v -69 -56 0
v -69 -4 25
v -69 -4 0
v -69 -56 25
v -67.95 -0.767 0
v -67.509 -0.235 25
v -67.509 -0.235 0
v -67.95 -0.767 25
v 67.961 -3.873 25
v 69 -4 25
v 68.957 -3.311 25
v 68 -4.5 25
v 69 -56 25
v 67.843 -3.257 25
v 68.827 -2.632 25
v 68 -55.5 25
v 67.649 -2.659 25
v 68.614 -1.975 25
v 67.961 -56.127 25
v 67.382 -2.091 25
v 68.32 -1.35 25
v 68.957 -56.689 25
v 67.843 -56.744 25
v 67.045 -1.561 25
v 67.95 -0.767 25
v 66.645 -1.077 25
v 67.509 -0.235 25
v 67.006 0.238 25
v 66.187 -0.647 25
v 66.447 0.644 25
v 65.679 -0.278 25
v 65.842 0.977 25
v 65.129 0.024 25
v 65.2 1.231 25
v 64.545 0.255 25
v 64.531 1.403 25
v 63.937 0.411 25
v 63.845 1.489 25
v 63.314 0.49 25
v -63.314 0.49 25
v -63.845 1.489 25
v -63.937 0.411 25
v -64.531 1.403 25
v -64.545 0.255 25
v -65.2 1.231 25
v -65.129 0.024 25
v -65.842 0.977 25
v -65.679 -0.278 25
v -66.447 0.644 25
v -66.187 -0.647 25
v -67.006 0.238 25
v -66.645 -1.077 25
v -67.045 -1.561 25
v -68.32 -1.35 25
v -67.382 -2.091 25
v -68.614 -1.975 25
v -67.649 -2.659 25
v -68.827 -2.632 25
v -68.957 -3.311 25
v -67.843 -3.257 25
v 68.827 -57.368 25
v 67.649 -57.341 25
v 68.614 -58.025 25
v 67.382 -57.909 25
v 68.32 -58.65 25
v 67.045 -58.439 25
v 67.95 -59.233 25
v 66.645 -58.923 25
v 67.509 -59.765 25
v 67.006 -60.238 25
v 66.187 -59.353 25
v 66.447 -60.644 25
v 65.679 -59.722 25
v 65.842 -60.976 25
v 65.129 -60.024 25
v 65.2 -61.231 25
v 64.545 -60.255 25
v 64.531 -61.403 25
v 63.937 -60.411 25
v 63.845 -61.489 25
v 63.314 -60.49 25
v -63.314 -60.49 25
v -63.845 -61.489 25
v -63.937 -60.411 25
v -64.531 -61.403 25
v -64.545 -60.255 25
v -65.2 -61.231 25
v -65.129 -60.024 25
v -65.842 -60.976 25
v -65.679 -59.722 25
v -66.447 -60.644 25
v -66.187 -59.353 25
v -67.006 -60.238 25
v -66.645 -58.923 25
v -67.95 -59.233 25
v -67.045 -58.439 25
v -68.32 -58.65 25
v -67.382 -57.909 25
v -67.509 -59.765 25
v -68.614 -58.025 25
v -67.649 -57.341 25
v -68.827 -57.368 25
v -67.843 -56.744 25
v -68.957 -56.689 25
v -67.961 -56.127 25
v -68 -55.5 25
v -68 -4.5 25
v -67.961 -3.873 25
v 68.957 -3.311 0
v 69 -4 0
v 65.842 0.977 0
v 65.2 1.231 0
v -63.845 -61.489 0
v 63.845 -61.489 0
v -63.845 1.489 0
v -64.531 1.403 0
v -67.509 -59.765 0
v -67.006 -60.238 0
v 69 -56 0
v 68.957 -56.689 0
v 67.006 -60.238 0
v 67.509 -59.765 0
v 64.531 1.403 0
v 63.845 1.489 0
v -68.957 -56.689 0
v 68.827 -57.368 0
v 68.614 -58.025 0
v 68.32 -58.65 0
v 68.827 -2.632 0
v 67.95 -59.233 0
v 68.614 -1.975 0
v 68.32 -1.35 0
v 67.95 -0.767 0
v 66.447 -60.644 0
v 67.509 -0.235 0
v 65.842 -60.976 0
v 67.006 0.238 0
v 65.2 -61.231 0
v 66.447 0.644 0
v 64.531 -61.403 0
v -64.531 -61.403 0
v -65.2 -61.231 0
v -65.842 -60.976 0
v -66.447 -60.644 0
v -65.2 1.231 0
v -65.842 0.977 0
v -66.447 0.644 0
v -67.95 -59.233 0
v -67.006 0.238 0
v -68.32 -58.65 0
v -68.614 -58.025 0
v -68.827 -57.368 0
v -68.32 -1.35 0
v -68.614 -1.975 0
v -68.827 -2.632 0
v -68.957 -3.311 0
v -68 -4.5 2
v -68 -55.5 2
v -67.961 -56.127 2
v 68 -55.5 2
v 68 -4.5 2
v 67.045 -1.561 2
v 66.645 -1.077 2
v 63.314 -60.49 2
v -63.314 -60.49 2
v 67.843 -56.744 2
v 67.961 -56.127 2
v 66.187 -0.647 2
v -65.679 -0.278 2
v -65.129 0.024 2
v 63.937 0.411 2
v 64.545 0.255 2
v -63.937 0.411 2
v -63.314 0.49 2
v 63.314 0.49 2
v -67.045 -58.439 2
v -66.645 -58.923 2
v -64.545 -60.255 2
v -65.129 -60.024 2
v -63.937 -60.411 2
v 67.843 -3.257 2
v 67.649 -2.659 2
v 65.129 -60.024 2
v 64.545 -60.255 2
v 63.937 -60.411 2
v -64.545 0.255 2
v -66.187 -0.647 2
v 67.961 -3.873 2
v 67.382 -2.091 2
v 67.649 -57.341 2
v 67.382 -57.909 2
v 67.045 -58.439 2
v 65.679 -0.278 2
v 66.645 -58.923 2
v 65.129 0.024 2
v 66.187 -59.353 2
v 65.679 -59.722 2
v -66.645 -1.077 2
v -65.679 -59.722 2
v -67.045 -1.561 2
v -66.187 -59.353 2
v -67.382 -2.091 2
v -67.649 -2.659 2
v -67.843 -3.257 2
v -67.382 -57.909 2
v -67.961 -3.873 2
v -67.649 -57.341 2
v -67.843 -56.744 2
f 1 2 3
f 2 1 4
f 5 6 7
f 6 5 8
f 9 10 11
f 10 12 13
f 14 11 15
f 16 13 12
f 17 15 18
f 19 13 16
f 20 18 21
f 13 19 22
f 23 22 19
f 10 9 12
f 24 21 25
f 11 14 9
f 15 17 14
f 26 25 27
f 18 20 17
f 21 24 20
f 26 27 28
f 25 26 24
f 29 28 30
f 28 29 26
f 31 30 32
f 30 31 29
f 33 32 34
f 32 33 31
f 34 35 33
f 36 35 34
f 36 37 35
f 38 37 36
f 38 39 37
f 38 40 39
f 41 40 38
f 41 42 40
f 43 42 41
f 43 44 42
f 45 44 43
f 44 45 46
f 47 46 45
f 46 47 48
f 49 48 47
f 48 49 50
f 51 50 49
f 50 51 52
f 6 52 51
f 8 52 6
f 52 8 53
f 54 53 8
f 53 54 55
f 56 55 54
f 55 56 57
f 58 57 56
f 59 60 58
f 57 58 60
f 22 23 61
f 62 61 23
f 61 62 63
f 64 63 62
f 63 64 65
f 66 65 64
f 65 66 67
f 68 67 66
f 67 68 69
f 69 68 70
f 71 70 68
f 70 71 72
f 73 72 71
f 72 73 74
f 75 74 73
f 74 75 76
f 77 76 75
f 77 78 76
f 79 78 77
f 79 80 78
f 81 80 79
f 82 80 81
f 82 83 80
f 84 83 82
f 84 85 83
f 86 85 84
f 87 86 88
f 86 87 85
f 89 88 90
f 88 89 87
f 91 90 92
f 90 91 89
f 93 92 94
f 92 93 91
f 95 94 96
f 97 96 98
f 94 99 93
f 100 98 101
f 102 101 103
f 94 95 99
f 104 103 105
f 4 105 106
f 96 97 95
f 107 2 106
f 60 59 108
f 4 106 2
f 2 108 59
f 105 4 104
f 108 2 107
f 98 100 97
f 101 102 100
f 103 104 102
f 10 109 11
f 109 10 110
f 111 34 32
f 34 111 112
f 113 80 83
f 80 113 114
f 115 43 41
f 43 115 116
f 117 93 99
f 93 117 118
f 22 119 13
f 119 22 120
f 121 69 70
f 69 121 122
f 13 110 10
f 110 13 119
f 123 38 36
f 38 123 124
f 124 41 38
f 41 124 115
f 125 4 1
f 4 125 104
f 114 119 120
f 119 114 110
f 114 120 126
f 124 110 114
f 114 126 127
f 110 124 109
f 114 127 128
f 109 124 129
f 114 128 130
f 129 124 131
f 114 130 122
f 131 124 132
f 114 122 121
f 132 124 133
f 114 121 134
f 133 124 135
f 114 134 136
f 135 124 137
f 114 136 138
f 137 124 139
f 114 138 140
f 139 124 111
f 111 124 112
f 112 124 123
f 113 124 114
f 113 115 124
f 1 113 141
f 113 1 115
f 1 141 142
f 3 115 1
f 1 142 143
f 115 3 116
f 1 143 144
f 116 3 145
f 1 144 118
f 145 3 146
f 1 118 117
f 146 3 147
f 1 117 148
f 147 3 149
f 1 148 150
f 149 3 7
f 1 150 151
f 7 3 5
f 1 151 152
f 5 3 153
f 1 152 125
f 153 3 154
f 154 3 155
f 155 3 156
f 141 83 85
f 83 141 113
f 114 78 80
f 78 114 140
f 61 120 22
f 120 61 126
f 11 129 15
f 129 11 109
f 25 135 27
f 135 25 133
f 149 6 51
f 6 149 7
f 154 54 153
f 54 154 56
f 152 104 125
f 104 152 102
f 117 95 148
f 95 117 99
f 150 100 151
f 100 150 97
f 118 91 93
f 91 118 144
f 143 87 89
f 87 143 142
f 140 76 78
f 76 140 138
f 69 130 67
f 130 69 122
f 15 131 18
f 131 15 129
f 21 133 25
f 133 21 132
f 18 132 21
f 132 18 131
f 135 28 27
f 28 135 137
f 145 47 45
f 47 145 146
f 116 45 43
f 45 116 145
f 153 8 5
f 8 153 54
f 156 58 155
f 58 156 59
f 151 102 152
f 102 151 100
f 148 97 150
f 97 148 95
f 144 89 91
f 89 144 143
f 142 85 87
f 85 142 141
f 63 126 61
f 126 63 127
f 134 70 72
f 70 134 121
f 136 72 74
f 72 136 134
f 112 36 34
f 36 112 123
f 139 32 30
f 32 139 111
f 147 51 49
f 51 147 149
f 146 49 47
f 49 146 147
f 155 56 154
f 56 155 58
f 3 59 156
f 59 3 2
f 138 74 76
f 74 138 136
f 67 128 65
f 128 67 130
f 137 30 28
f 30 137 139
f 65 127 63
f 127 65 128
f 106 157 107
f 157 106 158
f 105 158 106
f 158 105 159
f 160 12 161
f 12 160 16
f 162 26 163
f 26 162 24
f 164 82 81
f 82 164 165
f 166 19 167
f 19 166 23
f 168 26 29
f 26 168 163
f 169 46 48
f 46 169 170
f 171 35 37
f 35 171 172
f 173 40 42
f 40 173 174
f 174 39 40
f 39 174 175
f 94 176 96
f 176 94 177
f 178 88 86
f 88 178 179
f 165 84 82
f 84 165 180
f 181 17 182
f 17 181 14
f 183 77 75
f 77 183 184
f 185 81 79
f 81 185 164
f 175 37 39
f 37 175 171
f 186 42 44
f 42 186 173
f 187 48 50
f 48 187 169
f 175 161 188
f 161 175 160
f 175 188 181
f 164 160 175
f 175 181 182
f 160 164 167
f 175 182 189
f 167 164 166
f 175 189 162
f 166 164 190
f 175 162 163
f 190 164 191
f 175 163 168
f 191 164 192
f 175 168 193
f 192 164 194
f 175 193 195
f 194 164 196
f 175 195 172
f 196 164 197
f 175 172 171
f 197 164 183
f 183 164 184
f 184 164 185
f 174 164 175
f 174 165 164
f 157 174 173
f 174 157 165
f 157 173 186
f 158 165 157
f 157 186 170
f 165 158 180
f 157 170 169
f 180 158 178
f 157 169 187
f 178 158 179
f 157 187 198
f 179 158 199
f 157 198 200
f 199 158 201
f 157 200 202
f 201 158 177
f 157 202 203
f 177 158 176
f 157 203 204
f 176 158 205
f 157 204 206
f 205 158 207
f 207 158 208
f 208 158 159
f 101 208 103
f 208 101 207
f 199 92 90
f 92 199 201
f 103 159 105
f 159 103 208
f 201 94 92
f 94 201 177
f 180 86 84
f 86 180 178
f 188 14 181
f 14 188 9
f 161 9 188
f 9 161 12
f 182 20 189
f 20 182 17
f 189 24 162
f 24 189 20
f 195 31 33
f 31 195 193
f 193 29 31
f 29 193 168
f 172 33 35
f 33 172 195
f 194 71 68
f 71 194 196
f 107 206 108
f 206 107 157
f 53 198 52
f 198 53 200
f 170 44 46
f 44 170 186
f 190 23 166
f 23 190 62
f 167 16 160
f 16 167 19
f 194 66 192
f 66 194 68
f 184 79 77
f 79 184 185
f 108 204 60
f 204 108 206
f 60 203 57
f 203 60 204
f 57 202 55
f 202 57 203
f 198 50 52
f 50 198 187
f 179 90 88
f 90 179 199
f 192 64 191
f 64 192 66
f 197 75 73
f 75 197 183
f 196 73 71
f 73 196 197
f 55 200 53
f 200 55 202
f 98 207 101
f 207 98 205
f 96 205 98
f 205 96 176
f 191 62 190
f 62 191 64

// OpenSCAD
$fn = 50;


difference() {
	union() {
		translate(v = [0, -30.0000000000, 0]) {
			hull() {
				translate(v = [-63.5000000000, 26.0000000000, 0]) {
					cylinder(h = 25, r = 5.5000000000);
				}
				translate(v = [63.5000000000, 26.0000000000, 0]) {
					cylinder(h = 25, r = 5.5000000000);
				}
				translate(v = [-63.5000000000, -26.0000000000, 0]) {
					cylinder(h = 25, r = 5.5000000000);
				}
				translate(v = [63.5000000000, -26.0000000000, 0]) {
					cylinder(h = 25, r = 5.5000000000);
				}
			}
		}
	}
	union() {
		translate(v = [0, -30.0000000000, 2]) {
			hull() {
				translate(v = [-63.0000000000, 25.5000000000, 0]) {
					cylinder(h = 50, r = 5);
				}
				translate(v = [63.0000000000, 25.5000000000, 0]) {
					cylinder(h = 50, r = 5);
				}
				translate(v = [-63.0000000000, -25.5000000000, 0]) {
					cylinder(h = 50, r = 5);
				}
				translate(v = [63.0000000000, -25.5000000000, 0]) {
					cylinder(h = 50, r = 5);
				}
			}
		}
	}
}
